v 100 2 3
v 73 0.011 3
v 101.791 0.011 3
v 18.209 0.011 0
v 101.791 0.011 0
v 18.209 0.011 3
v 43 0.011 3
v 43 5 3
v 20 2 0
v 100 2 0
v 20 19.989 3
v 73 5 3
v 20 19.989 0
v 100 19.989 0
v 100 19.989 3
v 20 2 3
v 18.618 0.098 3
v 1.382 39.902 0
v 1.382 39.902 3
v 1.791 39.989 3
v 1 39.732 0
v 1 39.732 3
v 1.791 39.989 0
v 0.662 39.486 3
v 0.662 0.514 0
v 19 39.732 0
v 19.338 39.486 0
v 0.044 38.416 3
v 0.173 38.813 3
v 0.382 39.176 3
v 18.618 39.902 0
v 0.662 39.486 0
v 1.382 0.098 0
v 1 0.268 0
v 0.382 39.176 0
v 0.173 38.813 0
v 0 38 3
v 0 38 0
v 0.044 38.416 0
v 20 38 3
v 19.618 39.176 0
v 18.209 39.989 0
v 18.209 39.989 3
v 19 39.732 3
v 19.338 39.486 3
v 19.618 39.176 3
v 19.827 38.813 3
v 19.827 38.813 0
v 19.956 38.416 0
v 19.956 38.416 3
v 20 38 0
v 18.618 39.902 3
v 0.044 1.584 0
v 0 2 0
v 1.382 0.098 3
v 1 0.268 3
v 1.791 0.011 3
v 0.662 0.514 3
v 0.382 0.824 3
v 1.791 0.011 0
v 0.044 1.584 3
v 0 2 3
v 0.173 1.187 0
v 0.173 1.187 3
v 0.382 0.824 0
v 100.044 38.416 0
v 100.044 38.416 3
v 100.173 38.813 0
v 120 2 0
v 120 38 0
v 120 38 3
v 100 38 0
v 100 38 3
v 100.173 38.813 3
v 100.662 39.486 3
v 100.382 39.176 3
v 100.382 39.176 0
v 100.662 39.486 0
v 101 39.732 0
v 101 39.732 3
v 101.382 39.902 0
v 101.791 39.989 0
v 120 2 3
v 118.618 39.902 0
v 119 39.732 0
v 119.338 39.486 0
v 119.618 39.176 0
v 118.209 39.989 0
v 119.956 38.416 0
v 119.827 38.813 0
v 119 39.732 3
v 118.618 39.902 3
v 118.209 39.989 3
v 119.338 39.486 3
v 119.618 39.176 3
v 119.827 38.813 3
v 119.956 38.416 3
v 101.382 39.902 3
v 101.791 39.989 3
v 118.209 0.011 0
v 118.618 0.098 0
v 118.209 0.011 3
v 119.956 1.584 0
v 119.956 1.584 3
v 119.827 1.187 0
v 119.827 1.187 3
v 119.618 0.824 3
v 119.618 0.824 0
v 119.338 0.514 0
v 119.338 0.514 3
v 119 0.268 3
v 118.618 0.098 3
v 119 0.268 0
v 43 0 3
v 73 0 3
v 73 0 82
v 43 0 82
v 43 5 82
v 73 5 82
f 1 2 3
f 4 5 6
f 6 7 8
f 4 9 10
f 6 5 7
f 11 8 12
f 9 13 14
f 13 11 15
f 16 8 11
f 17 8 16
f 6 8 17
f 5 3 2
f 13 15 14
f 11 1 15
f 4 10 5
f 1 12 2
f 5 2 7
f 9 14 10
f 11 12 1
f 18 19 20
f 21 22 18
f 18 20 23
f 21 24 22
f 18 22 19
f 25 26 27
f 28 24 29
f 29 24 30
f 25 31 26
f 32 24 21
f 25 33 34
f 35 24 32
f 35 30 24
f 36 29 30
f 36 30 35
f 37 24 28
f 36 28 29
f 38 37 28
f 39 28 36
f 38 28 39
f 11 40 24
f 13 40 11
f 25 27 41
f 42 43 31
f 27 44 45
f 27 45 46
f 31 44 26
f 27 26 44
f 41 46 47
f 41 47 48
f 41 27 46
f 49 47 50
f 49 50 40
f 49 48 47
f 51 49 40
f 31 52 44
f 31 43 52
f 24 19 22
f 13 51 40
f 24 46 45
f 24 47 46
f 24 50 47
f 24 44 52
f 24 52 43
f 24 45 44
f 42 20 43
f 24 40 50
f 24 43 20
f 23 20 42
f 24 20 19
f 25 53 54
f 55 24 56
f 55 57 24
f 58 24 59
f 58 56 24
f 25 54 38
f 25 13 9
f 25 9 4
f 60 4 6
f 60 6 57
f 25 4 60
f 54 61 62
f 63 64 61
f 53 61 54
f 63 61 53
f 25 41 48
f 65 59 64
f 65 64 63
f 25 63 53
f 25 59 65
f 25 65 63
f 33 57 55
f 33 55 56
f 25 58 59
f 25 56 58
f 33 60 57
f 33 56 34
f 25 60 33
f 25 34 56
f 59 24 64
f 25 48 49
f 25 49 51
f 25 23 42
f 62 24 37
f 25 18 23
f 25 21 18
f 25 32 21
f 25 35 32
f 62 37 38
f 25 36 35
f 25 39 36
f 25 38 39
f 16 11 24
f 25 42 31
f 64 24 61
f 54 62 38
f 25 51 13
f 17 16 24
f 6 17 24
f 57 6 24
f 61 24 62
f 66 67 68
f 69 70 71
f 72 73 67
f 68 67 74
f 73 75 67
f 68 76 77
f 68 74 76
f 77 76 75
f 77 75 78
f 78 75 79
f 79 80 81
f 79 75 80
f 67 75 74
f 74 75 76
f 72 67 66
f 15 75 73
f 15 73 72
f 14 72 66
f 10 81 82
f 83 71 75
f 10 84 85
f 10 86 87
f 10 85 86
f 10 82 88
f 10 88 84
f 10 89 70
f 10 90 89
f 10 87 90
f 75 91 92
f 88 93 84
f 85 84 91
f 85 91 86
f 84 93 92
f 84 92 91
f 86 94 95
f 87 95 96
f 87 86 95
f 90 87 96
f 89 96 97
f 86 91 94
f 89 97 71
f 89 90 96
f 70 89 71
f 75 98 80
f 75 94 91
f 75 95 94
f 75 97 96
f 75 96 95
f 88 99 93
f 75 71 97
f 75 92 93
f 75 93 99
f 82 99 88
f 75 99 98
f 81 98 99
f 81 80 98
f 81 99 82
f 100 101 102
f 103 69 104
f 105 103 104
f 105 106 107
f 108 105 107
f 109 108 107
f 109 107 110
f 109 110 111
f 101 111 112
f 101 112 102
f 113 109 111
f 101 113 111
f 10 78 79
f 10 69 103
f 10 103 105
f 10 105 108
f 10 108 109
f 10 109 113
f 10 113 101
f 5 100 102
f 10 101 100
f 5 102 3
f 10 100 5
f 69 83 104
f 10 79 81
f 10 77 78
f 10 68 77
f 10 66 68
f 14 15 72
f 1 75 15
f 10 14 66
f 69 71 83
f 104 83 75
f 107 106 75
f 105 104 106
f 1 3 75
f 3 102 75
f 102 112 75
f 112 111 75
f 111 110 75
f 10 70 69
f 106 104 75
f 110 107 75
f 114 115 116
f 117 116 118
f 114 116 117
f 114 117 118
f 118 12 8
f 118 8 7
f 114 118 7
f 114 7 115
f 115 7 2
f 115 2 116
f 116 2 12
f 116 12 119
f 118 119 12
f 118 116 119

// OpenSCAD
// file: openscad-generics/generics.scad
module rounded_cube(size, r_dim, center = false, sides_only = false){
	x_dim = size[0] - r_dim * 2;
	y_dim = size[1] - r_dim * 2;
	z_dim = size[2] + (sides_only ? -1 : -r_dim * 2); // need -1 because of cylinder height

	x = (center ? - size[0] / 2 : 0) + r_dim;
	y = (center ? - size[1] / 2 : 0) + r_dim;
	z = (center ? - size[2] / 2 : 0) + (sides_only ? 0 : r_dim);

	translate([x, y, z])
		minkowski(){
			cube([x_dim , y_dim, z_dim]);
			if (sides_only) cylinder(1, r=r_dim); else sphere(r_dim);
		}
}

module pill(size, r_dim, center = false) {
	x_dim = size[0] - r_dim * 2;
	y_dim = size[1] - r_dim * 2;
	z_dim = size[2] - r_dim * 2;

	r_top = x_dim / 2;
	y_cube = y_dim - r_top * 2;

	x = (center ? - size[0] / 2 : 0) + r_dim;
	y = (center ? - size[1] / 2 : 0) + r_dim;
	z = (center ? - size[2] / 2 : 0) + r_dim;
	
	translate([x, y, z]) {
		minkowski() {
			union() {
				for(y_pos = [r_top, y_dim - r_top]) {
					translate([r_top, y_pos, 0]) cylinder(z_dim, r=r_top);
				}
				translate([0, r_top, 0]) cube([x_dim, y_cube, z_dim]);
			}
			sphere(r_dim);
		}
	}
}

pill([50, 70, 10], 3);
// file: constants.scad
wall = 2;

tolerance = 0.1;
allowance = 0.1;
clearance = tolerance + allowance;

// phone
phone_x = 153;
phone_y = 14;
phone_z = 77;

// cradle
cradle_buffer = 1;
cradle_rounding = 2;
cradle_lip = 5;

cradle_x = phone_x + cradle_buffer * 2 + wall * 2;
cradle_y = phone_y + cradle_buffer * 2 + wall * 2;
cradle_z = phone_z + wall;

charger_x = wall * 2;
charger_z = 18.7;
charger_y = 7.3;
charger_r = wall;

wedge_angle_deg = 5;

// connection
connection_x = 30;
connection_y = 5;
connection_z = cradle_z;

// mount
phone_x_pos = 0;
phone_y_pos = 0;
phone_z_pos = 0;

// cd mount
cd_x = 120;
cd_y = 20;
cd_z = 3;
cd_r = 2;

cd_connection_angle = 0;

cd_prong_x = 20;
cd_prong_y = 20;
cd_prong_z = cd_z;
// main file
include <constants.scad>

use <openscad-generics/generics.scad>

cd_mount();

module cd_mount() {
	union() {
		#rounded_cube($fn=30, [cd_x, cd_y, cd_z], cd_r, sides_only=true);

		prong_x_pos_list = [0, cd_x - cd_prong_x];
		prong_y_pos = 0;
		prong_z_pos = 0;

		for(prong_x_pos = prong_x_pos_list)
			translate([prong_x_pos, prong_y_pos, prong_z_pos]) rounded_cube($fn=30, [cd_prong_x, cd_prong_y + cd_y, cd_prong_z], cd_r, sides_only=true);

		// connection
		connection_x_pos = cd_x / 2 - connection_x / 2 - wall + phone_x_pos;
		connection_y_pos = 0;
		connection_z_pos = cd_z;

		connection_male_z = connection_z + phone_z_pos;

		connection_shoulder_buffer = wall * 2;
		connection_shoulder_x = connection_x + connection_shoulder_buffer;
		connection_shoulder_y = connection_y;
		connection_shoulder_z = phone_z_pos;
		
		connection_shoulder_x_pos = connection_x_pos - connection_shoulder_buffer / 2;

		translate([connection_x_pos, connection_y_pos, connection_z_pos]) rotate([-cd_connection_angle, 0, 0]) cube([connection_x, connection_y, connection_male_z]);
		translate([connection_shoulder_x_pos, connection_y_pos, connection_z_pos]) rotate([-cd_connection_angle, 0, 0]) cube([connection_shoulder_x, connection_shoulder_y, connection_shoulder_z]);
	}
}
